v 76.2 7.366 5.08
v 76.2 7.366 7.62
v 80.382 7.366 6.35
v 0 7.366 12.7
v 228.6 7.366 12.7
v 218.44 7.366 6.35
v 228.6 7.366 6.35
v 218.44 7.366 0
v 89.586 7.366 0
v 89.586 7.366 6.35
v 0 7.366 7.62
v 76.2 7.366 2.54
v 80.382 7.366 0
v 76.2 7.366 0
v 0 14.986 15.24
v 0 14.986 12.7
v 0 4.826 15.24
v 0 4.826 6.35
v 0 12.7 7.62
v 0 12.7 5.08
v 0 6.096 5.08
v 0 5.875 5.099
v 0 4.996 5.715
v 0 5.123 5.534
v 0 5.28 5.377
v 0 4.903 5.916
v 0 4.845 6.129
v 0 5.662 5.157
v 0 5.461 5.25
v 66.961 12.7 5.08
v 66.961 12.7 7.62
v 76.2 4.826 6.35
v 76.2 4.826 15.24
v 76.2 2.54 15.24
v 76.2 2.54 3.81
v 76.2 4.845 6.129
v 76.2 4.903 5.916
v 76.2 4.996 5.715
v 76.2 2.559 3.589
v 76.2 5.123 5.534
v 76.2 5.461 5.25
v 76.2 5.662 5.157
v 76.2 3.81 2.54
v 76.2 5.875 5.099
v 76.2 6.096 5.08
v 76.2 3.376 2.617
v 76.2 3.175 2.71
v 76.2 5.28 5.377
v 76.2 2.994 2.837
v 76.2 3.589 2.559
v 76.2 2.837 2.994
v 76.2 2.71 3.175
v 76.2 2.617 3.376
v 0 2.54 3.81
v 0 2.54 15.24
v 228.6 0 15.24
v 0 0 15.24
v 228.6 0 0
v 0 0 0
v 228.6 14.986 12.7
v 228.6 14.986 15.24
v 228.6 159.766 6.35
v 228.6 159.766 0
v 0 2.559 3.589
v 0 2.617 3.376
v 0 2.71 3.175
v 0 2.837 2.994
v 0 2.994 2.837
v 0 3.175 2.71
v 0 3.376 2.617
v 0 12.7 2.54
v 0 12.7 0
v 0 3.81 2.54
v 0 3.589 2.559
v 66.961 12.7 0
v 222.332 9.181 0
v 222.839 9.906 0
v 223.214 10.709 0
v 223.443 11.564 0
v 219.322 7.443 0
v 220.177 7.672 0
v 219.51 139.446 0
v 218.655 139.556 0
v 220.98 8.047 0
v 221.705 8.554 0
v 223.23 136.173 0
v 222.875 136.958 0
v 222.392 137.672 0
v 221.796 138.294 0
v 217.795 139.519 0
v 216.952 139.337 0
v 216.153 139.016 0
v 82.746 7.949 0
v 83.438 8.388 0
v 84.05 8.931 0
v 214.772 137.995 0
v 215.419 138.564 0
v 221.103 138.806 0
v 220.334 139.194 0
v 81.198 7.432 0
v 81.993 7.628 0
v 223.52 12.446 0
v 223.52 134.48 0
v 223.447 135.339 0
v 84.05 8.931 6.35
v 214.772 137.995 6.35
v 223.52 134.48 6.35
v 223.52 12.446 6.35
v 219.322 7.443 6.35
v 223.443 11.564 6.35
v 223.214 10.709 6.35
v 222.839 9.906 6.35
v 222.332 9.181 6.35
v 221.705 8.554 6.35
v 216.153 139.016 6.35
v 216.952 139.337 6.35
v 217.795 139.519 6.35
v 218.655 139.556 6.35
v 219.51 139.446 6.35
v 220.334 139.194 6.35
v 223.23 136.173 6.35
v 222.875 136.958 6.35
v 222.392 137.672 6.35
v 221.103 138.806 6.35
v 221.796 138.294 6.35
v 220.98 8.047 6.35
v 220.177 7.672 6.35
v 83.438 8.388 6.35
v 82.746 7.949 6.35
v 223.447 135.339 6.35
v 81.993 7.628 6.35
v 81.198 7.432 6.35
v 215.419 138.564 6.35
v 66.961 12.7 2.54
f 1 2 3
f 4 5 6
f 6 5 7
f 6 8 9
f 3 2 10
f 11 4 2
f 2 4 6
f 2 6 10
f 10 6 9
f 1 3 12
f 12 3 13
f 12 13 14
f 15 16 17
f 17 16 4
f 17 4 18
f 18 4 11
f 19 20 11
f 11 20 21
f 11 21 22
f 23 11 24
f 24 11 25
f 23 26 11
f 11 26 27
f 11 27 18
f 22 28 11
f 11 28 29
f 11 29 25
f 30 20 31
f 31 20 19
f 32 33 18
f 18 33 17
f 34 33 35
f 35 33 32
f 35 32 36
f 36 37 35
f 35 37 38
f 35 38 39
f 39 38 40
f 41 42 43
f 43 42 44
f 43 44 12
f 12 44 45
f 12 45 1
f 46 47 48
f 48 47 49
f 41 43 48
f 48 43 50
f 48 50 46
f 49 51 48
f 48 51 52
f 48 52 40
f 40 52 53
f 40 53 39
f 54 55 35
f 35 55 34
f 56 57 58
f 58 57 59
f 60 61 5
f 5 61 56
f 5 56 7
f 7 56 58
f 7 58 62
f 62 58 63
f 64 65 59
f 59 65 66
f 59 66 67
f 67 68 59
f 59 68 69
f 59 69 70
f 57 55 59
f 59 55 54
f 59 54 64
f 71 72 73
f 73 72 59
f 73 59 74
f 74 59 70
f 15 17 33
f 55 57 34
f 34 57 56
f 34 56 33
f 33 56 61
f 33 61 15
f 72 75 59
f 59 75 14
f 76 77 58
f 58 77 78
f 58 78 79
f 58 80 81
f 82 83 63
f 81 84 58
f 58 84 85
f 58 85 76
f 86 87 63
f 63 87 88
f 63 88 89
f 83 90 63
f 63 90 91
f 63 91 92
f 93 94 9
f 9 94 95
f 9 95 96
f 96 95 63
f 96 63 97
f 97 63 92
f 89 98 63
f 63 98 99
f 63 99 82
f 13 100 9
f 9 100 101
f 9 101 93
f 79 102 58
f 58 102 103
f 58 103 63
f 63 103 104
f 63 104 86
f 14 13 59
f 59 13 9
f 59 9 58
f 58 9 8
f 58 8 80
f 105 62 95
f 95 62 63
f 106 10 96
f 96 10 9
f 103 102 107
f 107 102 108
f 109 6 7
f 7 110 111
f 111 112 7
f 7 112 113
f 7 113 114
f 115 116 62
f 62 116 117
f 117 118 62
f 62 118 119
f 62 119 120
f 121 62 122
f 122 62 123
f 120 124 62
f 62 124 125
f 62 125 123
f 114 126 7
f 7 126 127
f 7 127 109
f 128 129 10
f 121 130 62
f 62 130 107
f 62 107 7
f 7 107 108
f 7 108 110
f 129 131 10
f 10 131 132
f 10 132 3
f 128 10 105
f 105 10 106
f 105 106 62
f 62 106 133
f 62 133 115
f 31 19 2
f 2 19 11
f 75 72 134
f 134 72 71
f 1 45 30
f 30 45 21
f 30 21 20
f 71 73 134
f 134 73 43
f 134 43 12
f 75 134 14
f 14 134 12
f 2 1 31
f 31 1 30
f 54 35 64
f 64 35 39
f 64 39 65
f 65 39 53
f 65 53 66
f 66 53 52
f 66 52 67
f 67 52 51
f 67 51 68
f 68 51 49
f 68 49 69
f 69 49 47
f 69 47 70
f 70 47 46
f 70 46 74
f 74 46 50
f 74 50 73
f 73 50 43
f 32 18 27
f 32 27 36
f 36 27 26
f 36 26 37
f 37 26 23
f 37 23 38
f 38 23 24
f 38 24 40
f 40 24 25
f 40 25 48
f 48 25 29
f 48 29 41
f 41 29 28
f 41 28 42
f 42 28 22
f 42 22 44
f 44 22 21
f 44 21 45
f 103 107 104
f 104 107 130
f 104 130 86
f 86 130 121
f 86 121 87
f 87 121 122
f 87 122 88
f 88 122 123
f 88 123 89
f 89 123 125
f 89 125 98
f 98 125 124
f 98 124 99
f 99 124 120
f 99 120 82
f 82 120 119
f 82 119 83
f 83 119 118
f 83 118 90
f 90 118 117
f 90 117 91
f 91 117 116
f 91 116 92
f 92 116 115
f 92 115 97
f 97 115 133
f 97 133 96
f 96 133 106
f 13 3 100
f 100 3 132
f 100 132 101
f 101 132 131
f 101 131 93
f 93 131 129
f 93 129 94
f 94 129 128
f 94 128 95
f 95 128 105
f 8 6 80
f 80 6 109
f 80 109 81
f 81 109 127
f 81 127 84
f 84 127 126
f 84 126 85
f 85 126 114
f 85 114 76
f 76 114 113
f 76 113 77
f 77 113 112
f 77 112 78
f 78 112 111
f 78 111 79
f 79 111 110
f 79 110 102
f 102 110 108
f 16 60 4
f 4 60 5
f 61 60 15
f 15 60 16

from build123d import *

# Parameters (mm, degrees)
BOSS_EXTRUDE1_DEPTH = 15.24
BOSS_EXTRUDE2_DEPTH = 6.35
SKETCH3_W           = 76.2
SKETCH3_H           = 12.7
BOSS_EXTRUDE3_DEPTH = 7.62
CUT_EXTRUDE1_DEPTH  = 76.2
CUT_EXTRUDE2_DEPTH  = 280.00035691
FILLET1_R           = 1.27
FILLET2_R           = 5.08
SKETCH6_W           = 228.6
SKETCH6_H           = 2.54
BOSS_EXTRUDE4_DEPTH = 7.62


with BuildPart() as part:
    # Sketch1 → Boss-Extrude1 (new body)
    with BuildSketch(Plane.XY):
        Polygon((0, 0), (228.6, 0), (228.6, 7.366), (0, 7.366), (0, 4.826), (76.2, 4.826), (76.2, 2.54), (0, 2.54), align=None)
    extrude(amount=BOSS_EXTRUDE1_DEPTH)

    # Sketch2 → Boss-Extrude2 (add)
    with BuildSketch(Plane.XY):
        Polygon((228.6, 7.366), (228.6, 159.766), (82.55, 7.366), (89.586126025, 7.366), (223.52, 147.123085887), (223.52, 7.366), align=None)
    extrude(amount=BOSS_EXTRUDE2_DEPTH)

    # Sketch3 → Boss-Extrude3 (add)
    with BuildSketch(Plane.XY):
        with Locations((38.1, 6.35)):
            Rectangle(SKETCH3_W, SKETCH3_H)
    extrude(amount=BOSS_EXTRUDE3_DEPTH)

    # Sketch5 → Cut-Extrude1 (cut)
    with BuildSketch(Plane.ZY):
        Polygon((7.62, 2.54), (2.54, 2.54), (2.54, 12.7), (5.08, 12.7), (5.08, 4.826), (7.62, 4.826), align=None)
    extrude(amount=-CUT_EXTRUDE1_DEPTH, mode=Mode.SUBTRACT)

    # Sketch7 → Cut-Extrude2 (cut, through all)
    with BuildSketch(Plane.XY.offset(7.62)):
        Polygon((76.2, 7.366), (66.961240992, 12.7), (76.2, 12.7), align=None)
    extrude(amount=-CUT_EXTRUDE2_DEPTH, mode=Mode.SUBTRACT)

    # Fillet1
    fillet1_edges = [part.edges().sort_by_distance(p)[0] for p in [
        (38.1, 4.826, 5.08),
        (38.1, 2.54, 2.54),
    ]]
    fillet(fillet1_edges, radius=FILLET1_R)

    # Fillet2
    fillet2_edges = [part.edges().sort_by_distance(p)[0] for p in [
        (223.52, 7.366, 3.175),
        (82.55, 7.366, 3.175),
        (223.52, 147.123085887, 3.175),
    ]]
    fillet(fillet2_edges, radius=FILLET2_R)

    # Sketch6 → Boss-Extrude4 (add)
    with BuildSketch(Plane(origin=(0, 7.366, 0), x_dir=(1, 0, 0), z_dir=(0, 1, 0))):
        with Locations((114.3, -13.97)):
            Rectangle(SKETCH6_W, SKETCH6_H)
    extrude(amount=BOSS_EXTRUDE4_DEPTH)


solid = part.part
